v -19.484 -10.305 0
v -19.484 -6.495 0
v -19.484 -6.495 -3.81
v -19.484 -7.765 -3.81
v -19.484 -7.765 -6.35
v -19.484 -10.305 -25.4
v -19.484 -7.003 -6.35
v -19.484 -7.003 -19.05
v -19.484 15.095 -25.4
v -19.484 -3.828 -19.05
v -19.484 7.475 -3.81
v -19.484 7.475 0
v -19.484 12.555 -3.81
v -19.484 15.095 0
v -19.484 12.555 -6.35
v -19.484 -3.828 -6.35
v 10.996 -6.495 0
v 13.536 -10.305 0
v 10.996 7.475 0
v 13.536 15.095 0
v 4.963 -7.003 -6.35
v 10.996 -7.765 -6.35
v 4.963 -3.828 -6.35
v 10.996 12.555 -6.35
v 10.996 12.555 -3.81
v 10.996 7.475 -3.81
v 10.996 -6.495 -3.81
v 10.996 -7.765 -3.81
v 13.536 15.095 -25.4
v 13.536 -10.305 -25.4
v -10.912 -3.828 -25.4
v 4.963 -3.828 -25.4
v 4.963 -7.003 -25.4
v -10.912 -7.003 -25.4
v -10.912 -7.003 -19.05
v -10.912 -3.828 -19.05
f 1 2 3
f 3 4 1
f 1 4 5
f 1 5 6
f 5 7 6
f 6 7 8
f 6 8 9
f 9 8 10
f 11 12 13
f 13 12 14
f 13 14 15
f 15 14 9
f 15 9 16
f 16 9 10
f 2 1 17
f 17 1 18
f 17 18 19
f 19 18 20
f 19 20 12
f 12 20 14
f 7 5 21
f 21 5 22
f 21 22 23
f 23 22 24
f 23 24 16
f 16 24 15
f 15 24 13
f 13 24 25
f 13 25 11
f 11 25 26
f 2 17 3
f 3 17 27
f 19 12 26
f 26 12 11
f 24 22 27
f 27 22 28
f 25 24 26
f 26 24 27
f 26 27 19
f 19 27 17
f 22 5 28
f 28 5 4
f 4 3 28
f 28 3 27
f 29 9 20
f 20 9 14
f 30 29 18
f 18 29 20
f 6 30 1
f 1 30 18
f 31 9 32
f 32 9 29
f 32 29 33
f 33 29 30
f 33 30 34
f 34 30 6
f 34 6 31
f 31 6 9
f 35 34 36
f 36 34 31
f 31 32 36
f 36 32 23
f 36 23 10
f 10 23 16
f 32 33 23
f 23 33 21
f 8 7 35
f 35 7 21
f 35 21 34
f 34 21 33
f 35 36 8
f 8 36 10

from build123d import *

# Parameters (mm, degrees)
SKETCH1_W           = 33.02
SKETCH1_H           = 25.4
BOSS_EXTRUDE1_DEPTH = 25.4
CUT_EXTRUDE2_START  = -3.81
SKETCH1_4_W         = 27.94
SKETCH1_4_H         = 5.08
SKETCH1_4_H_2       = 1.27
CUT_EXTRUDE2_DEPTH  = 2.54
SKETCH1_3_W         = 27.94
SKETCH1_3_H         = 13.97
CUT_EXTRUDE1_DEPTH  = 6.35
CUT_EXTRUDE3_START  = -6.35
SKETCH1_5_W         = 15.875
SKETCH1_5_H         = 3.175
CUT_EXTRUDE3_DEPTH  = 19.05
SKETCH4_W           = 12.7
SKETCH4_H           = 3.175
CUT_EXTRUDE4_DEPTH  = 19.05
CUT_EXTRUDE5_DEPTH  = 6.35


with BuildPart() as part:
    # Sketch1 → Boss-Extrude1 (new body)
    with BuildSketch(Plane.XY):
        with Locations((-2.974473684, 2.395175439)):
            Rectangle(SKETCH1_W, SKETCH1_H)
    extrude(amount=-BOSS_EXTRUDE1_DEPTH)

    # Sketch1<4> → Cut-Extrude2 (cut)
    with BuildSketch(Plane.XY.offset(CUT_EXTRUDE2_START)):
        with Locations((-2.974473684, 10.015175439)):
            Rectangle(SKETCH1_4_W, SKETCH1_4_H)
        with Locations((-2.974473684, -7.129824561)):
            Rectangle(SKETCH1_4_W, SKETCH1_4_H_2)
    extrude(amount=-CUT_EXTRUDE2_DEPTH, mode=Mode.SUBTRACT)

    # Sketch1<3> → Cut-Extrude1 (cut)
    with BuildSketch(Plane.XY):
        with Locations((-2.974473684, 0.490175439)):
            Rectangle(SKETCH1_3_W, SKETCH1_3_H)
    extrude(amount=-CUT_EXTRUDE1_DEPTH, mode=Mode.SUBTRACT)

    # Sketch1<5> → Cut-Extrude3 (cut)
    with BuildSketch(Plane.XY.offset(CUT_EXTRUDE3_START)):
        with Locations((-2.974473684, -5.415324561)):
            Rectangle(SKETCH1_5_W, SKETCH1_5_H)
    extrude(amount=-CUT_EXTRUDE3_DEPTH, mode=Mode.SUBTRACT)

    # Sketch4 → Cut-Extrude4 (cut)
    with BuildSketch(Plane(origin=(-10.911973684, 0, 0), x_dir=(0, 0, -1), z_dir=(1, 0, 0))):
        with Locations((12.7, -5.415324561)):
            Rectangle(SKETCH4_W, SKETCH4_H)
    extrude(amount=-CUT_EXTRUDE4_DEPTH, mode=Mode.SUBTRACT)

    # Sketch7 → Cut-Extrude5 (cut)
    with BuildSketch(Plane(origin=(-16.944473684, 0, 0), x_dir=(0, 0, -1), z_dir=(1, 0, 0))):
        Polygon((0, 7.475175439), (3.81, 7.475175439), (3.81, 12.555175439), (6.35, 12.555175439), (6.35, -7.764824561), (3.81, -7.764824561), (3.81, -6.494824561), (0, -6.494824561), align=None)
    extrude(amount=-CUT_EXTRUDE5_DEPTH, mode=Mode.SUBTRACT)


solid = part.part
